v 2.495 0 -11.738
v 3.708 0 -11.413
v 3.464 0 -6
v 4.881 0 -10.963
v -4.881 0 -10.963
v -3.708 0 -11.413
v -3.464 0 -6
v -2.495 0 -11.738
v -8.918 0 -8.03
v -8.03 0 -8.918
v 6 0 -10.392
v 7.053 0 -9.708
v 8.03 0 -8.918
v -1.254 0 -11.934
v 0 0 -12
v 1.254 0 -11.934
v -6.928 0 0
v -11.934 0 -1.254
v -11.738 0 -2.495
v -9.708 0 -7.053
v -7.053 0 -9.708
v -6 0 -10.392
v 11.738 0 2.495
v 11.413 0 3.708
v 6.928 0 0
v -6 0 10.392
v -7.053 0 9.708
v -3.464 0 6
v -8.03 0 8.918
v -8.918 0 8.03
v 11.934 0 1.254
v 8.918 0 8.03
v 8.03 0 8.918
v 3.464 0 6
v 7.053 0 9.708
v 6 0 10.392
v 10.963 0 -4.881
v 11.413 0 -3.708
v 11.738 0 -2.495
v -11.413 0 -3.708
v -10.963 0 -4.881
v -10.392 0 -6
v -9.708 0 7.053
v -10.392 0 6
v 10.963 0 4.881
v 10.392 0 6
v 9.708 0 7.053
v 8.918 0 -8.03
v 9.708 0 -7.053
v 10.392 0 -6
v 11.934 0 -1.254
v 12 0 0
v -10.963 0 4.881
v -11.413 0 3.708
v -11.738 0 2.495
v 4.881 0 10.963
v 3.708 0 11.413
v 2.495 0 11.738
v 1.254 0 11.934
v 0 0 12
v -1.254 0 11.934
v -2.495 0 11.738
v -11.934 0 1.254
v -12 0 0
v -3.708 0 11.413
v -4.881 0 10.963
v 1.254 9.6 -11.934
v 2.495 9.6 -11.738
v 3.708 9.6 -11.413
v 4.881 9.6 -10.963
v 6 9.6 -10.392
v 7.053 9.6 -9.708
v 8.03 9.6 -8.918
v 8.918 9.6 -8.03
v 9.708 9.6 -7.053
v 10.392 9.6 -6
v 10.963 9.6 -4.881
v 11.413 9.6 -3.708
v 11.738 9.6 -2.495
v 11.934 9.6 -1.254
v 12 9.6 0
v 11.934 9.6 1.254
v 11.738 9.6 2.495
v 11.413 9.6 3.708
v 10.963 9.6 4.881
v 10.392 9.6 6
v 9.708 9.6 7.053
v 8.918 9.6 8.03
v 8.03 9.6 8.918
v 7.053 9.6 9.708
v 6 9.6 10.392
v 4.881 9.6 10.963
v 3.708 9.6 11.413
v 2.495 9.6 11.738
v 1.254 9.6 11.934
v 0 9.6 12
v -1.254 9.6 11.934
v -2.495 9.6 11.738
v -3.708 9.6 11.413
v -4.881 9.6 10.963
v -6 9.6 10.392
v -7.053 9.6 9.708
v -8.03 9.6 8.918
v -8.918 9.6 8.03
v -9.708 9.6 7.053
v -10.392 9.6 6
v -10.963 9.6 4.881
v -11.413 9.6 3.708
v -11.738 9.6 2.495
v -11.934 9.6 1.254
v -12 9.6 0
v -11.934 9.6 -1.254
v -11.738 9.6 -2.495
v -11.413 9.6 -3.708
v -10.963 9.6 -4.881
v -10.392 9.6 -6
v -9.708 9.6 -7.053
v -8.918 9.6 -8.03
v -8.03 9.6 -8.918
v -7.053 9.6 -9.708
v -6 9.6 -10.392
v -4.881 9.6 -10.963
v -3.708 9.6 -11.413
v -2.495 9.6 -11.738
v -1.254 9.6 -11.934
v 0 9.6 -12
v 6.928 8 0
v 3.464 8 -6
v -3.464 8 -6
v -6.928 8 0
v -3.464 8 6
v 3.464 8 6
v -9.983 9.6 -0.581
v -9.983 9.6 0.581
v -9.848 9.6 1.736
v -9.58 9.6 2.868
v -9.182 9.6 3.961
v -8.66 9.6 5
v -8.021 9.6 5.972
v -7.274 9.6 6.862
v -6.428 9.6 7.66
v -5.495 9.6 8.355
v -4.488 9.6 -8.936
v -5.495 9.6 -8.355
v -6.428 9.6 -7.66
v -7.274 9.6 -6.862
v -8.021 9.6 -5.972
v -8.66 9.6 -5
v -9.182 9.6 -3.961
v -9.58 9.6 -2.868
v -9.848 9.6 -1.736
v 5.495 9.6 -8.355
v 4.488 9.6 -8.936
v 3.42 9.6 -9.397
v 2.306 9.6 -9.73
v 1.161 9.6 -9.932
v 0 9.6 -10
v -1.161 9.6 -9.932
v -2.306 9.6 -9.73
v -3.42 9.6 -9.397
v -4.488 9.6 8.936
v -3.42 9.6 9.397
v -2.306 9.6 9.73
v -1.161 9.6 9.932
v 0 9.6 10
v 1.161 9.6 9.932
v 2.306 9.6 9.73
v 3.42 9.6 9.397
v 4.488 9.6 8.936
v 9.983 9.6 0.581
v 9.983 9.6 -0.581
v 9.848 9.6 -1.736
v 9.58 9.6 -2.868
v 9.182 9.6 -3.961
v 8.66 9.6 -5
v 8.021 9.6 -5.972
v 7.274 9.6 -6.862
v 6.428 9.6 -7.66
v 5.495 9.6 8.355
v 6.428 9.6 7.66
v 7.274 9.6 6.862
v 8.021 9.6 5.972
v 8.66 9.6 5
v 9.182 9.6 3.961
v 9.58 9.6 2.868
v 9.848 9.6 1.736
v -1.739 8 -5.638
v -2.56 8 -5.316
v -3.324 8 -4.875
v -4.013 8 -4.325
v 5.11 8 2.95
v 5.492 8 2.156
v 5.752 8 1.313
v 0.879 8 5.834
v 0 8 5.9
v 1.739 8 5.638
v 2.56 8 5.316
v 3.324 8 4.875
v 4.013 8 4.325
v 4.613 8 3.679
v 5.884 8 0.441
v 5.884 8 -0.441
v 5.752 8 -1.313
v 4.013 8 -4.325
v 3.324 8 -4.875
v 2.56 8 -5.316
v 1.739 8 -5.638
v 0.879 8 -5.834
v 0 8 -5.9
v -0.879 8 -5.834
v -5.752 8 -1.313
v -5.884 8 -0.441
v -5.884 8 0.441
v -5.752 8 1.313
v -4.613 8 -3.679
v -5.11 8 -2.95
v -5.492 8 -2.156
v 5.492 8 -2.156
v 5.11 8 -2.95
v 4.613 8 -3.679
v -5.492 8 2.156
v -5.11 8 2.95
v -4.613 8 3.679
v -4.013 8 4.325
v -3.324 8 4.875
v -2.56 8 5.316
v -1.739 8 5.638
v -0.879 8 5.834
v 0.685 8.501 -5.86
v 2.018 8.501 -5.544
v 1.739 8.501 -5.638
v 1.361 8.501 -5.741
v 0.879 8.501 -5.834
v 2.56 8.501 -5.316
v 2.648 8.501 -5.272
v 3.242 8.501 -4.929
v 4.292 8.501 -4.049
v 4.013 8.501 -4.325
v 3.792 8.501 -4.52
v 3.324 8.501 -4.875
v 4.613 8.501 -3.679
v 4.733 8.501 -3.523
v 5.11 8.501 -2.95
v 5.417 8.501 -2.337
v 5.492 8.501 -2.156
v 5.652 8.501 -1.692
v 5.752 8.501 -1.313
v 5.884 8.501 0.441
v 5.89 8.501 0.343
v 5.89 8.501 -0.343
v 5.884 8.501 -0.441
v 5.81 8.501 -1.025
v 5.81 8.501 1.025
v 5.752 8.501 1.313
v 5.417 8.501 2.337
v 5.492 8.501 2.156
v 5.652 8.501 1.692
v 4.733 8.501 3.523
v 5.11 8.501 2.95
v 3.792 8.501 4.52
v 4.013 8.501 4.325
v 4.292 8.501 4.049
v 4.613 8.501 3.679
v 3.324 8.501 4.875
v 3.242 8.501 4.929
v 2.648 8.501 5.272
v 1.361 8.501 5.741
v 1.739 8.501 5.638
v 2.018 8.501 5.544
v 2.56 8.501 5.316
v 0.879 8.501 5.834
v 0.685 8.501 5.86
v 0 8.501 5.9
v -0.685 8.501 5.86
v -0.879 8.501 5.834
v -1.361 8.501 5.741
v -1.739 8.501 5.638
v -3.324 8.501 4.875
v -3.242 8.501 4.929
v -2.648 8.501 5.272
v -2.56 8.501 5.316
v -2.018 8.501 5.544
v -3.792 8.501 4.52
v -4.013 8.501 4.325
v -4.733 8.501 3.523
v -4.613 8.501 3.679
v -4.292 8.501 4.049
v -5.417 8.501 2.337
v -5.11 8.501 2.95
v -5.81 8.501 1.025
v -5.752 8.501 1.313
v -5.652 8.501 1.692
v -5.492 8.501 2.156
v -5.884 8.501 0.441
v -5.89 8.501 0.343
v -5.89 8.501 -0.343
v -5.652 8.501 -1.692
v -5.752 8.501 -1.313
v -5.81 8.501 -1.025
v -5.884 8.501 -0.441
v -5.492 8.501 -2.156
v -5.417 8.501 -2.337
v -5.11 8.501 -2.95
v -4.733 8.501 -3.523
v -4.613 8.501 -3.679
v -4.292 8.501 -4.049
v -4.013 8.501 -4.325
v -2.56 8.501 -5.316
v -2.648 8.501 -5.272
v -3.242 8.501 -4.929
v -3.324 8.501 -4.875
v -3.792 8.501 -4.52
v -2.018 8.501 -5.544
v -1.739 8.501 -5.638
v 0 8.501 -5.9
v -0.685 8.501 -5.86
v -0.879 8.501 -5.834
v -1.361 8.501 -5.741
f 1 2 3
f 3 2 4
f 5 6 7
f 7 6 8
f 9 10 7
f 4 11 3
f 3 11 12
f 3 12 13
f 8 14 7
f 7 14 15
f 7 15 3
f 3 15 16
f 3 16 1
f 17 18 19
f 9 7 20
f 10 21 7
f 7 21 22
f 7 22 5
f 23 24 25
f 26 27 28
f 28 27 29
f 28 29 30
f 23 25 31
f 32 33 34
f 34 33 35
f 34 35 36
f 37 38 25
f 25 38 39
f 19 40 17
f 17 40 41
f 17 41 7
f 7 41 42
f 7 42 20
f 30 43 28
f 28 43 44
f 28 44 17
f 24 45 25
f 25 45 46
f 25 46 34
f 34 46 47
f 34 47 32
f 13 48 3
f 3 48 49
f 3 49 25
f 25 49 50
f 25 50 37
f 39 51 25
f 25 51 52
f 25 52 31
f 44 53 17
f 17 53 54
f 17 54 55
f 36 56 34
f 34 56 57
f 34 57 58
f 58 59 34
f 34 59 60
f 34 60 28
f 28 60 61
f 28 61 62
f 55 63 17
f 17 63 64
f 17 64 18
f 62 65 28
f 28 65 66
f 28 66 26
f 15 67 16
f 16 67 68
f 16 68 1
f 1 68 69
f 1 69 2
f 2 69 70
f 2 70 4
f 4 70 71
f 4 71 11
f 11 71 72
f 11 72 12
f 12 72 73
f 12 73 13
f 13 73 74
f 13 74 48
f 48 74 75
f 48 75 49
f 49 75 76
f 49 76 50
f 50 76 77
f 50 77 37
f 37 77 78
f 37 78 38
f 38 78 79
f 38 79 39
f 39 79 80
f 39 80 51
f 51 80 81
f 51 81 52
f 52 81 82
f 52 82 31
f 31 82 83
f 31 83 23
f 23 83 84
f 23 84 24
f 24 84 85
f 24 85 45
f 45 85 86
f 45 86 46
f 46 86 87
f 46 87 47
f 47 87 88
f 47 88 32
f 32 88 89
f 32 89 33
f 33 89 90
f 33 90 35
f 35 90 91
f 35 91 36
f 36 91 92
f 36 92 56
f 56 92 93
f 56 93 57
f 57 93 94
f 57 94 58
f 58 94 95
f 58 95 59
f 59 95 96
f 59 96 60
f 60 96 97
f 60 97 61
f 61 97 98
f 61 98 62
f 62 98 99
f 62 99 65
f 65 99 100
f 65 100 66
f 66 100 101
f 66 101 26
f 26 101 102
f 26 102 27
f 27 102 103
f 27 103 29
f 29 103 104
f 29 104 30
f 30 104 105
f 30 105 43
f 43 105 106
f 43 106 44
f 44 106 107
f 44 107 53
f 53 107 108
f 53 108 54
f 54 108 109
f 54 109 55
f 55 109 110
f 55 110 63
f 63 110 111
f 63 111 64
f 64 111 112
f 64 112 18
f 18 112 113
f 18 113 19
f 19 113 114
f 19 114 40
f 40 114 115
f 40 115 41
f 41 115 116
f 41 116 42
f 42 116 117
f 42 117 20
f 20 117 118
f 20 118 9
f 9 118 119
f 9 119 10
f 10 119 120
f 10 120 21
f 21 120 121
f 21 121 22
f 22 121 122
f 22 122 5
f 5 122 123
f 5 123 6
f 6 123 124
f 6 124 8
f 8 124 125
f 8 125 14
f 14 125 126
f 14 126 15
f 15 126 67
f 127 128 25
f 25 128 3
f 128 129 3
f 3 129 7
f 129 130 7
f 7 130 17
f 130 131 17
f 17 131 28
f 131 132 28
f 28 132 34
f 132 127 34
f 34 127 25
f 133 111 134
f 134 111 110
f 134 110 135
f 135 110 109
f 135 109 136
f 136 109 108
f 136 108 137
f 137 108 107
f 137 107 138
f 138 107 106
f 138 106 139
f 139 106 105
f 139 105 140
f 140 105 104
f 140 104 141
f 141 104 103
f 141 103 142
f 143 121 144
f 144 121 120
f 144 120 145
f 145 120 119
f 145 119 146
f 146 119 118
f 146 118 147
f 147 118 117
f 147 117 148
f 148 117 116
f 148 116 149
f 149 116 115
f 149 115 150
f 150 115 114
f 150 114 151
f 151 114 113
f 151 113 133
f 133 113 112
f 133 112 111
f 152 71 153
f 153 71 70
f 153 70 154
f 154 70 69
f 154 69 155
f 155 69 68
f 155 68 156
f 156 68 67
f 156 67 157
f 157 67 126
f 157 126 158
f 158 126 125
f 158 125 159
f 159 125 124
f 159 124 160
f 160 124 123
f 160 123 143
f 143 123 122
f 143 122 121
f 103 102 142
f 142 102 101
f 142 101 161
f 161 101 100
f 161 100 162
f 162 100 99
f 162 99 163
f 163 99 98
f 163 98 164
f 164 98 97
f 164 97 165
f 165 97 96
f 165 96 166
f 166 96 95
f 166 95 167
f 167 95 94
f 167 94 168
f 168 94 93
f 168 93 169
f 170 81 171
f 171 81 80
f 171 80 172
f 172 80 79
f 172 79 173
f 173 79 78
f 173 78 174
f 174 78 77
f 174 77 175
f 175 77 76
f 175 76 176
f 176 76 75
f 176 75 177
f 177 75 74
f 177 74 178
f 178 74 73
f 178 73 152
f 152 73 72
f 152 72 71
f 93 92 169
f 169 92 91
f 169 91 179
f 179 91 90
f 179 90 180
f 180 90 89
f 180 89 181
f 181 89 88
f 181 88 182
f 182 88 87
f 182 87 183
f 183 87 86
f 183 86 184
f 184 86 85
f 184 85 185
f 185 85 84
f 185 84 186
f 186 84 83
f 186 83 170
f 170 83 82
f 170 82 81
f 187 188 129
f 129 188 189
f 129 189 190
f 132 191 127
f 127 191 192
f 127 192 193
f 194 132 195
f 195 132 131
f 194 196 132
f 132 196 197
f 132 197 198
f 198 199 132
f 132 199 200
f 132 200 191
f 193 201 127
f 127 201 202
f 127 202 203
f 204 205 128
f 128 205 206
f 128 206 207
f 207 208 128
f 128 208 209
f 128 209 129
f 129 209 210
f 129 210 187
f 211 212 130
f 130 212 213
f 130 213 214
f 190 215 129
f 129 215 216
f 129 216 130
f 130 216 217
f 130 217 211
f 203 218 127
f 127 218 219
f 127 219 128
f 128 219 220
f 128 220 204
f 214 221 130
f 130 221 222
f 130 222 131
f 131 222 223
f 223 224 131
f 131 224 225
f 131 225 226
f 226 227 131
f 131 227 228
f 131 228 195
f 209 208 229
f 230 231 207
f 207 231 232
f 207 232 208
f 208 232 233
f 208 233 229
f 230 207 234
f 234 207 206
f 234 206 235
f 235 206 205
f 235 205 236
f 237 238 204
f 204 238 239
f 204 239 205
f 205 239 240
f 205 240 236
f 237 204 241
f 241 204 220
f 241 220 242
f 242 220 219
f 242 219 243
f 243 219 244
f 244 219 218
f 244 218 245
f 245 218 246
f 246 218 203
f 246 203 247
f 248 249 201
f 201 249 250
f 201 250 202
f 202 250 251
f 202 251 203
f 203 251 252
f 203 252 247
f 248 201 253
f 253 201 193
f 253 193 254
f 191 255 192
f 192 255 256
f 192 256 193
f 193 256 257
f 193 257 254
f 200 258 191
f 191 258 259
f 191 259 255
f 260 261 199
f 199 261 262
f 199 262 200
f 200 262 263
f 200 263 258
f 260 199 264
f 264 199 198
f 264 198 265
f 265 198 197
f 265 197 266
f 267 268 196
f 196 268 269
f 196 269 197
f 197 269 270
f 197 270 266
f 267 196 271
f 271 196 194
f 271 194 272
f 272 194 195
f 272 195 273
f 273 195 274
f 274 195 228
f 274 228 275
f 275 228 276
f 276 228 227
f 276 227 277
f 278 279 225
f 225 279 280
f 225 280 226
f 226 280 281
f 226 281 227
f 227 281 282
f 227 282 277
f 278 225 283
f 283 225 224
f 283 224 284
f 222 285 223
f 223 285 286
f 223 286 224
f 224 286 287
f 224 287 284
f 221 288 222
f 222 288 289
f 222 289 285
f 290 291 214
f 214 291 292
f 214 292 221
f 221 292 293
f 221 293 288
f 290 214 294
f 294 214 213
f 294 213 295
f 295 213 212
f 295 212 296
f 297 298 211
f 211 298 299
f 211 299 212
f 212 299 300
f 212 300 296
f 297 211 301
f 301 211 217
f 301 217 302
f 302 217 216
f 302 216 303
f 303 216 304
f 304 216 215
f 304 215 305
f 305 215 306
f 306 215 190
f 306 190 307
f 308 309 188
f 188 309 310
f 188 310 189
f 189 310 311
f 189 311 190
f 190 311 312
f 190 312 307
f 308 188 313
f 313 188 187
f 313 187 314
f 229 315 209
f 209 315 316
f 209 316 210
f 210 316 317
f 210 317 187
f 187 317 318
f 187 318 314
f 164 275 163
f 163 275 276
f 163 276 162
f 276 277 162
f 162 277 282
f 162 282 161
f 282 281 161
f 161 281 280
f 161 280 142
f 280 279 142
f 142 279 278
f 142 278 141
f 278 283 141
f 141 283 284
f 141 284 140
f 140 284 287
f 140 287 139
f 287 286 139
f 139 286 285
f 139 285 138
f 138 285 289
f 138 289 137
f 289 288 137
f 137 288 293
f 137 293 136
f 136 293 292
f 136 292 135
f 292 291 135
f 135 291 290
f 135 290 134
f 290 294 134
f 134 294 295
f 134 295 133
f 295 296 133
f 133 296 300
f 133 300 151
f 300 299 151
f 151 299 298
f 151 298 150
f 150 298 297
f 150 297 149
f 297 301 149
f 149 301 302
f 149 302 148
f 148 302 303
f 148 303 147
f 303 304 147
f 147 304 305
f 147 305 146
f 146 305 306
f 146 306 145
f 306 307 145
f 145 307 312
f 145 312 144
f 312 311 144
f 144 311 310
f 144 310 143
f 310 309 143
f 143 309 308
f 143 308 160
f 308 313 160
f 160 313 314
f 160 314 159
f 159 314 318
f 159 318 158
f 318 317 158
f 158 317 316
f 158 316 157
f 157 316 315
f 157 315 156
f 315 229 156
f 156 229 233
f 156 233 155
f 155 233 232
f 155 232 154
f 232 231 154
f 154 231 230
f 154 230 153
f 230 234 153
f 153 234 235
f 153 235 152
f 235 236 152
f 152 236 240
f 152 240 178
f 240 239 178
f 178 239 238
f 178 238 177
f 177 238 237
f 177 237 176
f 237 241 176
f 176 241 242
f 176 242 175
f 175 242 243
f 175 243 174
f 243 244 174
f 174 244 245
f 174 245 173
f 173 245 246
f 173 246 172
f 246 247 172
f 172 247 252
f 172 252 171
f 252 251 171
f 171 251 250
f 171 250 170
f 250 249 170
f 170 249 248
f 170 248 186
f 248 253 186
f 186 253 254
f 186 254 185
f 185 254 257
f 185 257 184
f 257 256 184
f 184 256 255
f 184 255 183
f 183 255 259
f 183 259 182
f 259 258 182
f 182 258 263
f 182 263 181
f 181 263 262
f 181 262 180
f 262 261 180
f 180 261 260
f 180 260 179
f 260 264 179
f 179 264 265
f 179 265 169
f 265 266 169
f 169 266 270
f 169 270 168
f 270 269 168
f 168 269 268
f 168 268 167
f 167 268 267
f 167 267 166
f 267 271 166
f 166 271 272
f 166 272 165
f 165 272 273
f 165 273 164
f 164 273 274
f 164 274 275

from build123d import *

# Parameters (mm, degrees)
SKETCH1_R           = 12
BOSS_EXTRUDE1_DEPTH = 8
SKETCH2_R           = 12
SKETCH2_R_2         = 5.9
BOSS_EXTRUDE2_DEPTH = 1.6
SKETCH3_R           = 10
CUT_EXTRUDE1_DEPTH  = 1.1
CUT_EXTRUDE1_DRAFT  = -75


with BuildPart() as part:
    # Sketch1 → Boss-Extrude1 (new body)
    with BuildSketch(Plane(origin=(0, 0, 0), x_dir=(1, 0, 0), z_dir=(0, 1, 0))):
        Circle(SKETCH1_R)
        Polygon((3.464101615, 6), (-3.464101615, 6), (-6.92820323, 0), (-3.464101615, -6), (3.464101615, -6), (6.92820323, 0), align=None, mode=Mode.SUBTRACT)
    extrude(amount=BOSS_EXTRUDE1_DEPTH)

    # Sketch2 → Boss-Extrude2 (add)
    with BuildSketch(Plane(origin=(0, 8, 0), x_dir=(1, 0, 0), z_dir=(0, 1, 0))):
        Circle(SKETCH2_R)
        Circle(SKETCH2_R_2, mode=Mode.SUBTRACT)
    extrude(amount=BOSS_EXTRUDE2_DEPTH)


with BuildPart() as cut_extrude1_tool:
    # Sketch3 → Cut-Extrude1 (with draft: the straight prism first)
    with BuildSketch(Plane(origin=(0, 9.6, 0), x_dir=(1, 0, 0), z_dir=(0, 1, 0))):
        Circle(SKETCH3_R)
    extrude(amount=-CUT_EXTRUDE1_DEPTH)
    # Cut-Extrude1: the draft: its side faces are tilted about the plane it starts from
    cut_extrude1_sides = [cut_extrude1_tool.faces().sort_by_distance(p)[0] for p in [
        (-10, 9.05, 0),
    ]]
    draft(cut_extrude1_sides, Plane(origin=(0, 9.6, 0), x_dir=(1, 0, 0), z_dir=(0, 1, 0)), CUT_EXTRUDE1_DRAFT)


with BuildPart() as part_1:
    add(part.part)

    # Cut-Extrude1: cut by cut_extrude1_tool
    add(cut_extrude1_tool.part, mode=Mode.SUBTRACT)


solid = part_1.part
